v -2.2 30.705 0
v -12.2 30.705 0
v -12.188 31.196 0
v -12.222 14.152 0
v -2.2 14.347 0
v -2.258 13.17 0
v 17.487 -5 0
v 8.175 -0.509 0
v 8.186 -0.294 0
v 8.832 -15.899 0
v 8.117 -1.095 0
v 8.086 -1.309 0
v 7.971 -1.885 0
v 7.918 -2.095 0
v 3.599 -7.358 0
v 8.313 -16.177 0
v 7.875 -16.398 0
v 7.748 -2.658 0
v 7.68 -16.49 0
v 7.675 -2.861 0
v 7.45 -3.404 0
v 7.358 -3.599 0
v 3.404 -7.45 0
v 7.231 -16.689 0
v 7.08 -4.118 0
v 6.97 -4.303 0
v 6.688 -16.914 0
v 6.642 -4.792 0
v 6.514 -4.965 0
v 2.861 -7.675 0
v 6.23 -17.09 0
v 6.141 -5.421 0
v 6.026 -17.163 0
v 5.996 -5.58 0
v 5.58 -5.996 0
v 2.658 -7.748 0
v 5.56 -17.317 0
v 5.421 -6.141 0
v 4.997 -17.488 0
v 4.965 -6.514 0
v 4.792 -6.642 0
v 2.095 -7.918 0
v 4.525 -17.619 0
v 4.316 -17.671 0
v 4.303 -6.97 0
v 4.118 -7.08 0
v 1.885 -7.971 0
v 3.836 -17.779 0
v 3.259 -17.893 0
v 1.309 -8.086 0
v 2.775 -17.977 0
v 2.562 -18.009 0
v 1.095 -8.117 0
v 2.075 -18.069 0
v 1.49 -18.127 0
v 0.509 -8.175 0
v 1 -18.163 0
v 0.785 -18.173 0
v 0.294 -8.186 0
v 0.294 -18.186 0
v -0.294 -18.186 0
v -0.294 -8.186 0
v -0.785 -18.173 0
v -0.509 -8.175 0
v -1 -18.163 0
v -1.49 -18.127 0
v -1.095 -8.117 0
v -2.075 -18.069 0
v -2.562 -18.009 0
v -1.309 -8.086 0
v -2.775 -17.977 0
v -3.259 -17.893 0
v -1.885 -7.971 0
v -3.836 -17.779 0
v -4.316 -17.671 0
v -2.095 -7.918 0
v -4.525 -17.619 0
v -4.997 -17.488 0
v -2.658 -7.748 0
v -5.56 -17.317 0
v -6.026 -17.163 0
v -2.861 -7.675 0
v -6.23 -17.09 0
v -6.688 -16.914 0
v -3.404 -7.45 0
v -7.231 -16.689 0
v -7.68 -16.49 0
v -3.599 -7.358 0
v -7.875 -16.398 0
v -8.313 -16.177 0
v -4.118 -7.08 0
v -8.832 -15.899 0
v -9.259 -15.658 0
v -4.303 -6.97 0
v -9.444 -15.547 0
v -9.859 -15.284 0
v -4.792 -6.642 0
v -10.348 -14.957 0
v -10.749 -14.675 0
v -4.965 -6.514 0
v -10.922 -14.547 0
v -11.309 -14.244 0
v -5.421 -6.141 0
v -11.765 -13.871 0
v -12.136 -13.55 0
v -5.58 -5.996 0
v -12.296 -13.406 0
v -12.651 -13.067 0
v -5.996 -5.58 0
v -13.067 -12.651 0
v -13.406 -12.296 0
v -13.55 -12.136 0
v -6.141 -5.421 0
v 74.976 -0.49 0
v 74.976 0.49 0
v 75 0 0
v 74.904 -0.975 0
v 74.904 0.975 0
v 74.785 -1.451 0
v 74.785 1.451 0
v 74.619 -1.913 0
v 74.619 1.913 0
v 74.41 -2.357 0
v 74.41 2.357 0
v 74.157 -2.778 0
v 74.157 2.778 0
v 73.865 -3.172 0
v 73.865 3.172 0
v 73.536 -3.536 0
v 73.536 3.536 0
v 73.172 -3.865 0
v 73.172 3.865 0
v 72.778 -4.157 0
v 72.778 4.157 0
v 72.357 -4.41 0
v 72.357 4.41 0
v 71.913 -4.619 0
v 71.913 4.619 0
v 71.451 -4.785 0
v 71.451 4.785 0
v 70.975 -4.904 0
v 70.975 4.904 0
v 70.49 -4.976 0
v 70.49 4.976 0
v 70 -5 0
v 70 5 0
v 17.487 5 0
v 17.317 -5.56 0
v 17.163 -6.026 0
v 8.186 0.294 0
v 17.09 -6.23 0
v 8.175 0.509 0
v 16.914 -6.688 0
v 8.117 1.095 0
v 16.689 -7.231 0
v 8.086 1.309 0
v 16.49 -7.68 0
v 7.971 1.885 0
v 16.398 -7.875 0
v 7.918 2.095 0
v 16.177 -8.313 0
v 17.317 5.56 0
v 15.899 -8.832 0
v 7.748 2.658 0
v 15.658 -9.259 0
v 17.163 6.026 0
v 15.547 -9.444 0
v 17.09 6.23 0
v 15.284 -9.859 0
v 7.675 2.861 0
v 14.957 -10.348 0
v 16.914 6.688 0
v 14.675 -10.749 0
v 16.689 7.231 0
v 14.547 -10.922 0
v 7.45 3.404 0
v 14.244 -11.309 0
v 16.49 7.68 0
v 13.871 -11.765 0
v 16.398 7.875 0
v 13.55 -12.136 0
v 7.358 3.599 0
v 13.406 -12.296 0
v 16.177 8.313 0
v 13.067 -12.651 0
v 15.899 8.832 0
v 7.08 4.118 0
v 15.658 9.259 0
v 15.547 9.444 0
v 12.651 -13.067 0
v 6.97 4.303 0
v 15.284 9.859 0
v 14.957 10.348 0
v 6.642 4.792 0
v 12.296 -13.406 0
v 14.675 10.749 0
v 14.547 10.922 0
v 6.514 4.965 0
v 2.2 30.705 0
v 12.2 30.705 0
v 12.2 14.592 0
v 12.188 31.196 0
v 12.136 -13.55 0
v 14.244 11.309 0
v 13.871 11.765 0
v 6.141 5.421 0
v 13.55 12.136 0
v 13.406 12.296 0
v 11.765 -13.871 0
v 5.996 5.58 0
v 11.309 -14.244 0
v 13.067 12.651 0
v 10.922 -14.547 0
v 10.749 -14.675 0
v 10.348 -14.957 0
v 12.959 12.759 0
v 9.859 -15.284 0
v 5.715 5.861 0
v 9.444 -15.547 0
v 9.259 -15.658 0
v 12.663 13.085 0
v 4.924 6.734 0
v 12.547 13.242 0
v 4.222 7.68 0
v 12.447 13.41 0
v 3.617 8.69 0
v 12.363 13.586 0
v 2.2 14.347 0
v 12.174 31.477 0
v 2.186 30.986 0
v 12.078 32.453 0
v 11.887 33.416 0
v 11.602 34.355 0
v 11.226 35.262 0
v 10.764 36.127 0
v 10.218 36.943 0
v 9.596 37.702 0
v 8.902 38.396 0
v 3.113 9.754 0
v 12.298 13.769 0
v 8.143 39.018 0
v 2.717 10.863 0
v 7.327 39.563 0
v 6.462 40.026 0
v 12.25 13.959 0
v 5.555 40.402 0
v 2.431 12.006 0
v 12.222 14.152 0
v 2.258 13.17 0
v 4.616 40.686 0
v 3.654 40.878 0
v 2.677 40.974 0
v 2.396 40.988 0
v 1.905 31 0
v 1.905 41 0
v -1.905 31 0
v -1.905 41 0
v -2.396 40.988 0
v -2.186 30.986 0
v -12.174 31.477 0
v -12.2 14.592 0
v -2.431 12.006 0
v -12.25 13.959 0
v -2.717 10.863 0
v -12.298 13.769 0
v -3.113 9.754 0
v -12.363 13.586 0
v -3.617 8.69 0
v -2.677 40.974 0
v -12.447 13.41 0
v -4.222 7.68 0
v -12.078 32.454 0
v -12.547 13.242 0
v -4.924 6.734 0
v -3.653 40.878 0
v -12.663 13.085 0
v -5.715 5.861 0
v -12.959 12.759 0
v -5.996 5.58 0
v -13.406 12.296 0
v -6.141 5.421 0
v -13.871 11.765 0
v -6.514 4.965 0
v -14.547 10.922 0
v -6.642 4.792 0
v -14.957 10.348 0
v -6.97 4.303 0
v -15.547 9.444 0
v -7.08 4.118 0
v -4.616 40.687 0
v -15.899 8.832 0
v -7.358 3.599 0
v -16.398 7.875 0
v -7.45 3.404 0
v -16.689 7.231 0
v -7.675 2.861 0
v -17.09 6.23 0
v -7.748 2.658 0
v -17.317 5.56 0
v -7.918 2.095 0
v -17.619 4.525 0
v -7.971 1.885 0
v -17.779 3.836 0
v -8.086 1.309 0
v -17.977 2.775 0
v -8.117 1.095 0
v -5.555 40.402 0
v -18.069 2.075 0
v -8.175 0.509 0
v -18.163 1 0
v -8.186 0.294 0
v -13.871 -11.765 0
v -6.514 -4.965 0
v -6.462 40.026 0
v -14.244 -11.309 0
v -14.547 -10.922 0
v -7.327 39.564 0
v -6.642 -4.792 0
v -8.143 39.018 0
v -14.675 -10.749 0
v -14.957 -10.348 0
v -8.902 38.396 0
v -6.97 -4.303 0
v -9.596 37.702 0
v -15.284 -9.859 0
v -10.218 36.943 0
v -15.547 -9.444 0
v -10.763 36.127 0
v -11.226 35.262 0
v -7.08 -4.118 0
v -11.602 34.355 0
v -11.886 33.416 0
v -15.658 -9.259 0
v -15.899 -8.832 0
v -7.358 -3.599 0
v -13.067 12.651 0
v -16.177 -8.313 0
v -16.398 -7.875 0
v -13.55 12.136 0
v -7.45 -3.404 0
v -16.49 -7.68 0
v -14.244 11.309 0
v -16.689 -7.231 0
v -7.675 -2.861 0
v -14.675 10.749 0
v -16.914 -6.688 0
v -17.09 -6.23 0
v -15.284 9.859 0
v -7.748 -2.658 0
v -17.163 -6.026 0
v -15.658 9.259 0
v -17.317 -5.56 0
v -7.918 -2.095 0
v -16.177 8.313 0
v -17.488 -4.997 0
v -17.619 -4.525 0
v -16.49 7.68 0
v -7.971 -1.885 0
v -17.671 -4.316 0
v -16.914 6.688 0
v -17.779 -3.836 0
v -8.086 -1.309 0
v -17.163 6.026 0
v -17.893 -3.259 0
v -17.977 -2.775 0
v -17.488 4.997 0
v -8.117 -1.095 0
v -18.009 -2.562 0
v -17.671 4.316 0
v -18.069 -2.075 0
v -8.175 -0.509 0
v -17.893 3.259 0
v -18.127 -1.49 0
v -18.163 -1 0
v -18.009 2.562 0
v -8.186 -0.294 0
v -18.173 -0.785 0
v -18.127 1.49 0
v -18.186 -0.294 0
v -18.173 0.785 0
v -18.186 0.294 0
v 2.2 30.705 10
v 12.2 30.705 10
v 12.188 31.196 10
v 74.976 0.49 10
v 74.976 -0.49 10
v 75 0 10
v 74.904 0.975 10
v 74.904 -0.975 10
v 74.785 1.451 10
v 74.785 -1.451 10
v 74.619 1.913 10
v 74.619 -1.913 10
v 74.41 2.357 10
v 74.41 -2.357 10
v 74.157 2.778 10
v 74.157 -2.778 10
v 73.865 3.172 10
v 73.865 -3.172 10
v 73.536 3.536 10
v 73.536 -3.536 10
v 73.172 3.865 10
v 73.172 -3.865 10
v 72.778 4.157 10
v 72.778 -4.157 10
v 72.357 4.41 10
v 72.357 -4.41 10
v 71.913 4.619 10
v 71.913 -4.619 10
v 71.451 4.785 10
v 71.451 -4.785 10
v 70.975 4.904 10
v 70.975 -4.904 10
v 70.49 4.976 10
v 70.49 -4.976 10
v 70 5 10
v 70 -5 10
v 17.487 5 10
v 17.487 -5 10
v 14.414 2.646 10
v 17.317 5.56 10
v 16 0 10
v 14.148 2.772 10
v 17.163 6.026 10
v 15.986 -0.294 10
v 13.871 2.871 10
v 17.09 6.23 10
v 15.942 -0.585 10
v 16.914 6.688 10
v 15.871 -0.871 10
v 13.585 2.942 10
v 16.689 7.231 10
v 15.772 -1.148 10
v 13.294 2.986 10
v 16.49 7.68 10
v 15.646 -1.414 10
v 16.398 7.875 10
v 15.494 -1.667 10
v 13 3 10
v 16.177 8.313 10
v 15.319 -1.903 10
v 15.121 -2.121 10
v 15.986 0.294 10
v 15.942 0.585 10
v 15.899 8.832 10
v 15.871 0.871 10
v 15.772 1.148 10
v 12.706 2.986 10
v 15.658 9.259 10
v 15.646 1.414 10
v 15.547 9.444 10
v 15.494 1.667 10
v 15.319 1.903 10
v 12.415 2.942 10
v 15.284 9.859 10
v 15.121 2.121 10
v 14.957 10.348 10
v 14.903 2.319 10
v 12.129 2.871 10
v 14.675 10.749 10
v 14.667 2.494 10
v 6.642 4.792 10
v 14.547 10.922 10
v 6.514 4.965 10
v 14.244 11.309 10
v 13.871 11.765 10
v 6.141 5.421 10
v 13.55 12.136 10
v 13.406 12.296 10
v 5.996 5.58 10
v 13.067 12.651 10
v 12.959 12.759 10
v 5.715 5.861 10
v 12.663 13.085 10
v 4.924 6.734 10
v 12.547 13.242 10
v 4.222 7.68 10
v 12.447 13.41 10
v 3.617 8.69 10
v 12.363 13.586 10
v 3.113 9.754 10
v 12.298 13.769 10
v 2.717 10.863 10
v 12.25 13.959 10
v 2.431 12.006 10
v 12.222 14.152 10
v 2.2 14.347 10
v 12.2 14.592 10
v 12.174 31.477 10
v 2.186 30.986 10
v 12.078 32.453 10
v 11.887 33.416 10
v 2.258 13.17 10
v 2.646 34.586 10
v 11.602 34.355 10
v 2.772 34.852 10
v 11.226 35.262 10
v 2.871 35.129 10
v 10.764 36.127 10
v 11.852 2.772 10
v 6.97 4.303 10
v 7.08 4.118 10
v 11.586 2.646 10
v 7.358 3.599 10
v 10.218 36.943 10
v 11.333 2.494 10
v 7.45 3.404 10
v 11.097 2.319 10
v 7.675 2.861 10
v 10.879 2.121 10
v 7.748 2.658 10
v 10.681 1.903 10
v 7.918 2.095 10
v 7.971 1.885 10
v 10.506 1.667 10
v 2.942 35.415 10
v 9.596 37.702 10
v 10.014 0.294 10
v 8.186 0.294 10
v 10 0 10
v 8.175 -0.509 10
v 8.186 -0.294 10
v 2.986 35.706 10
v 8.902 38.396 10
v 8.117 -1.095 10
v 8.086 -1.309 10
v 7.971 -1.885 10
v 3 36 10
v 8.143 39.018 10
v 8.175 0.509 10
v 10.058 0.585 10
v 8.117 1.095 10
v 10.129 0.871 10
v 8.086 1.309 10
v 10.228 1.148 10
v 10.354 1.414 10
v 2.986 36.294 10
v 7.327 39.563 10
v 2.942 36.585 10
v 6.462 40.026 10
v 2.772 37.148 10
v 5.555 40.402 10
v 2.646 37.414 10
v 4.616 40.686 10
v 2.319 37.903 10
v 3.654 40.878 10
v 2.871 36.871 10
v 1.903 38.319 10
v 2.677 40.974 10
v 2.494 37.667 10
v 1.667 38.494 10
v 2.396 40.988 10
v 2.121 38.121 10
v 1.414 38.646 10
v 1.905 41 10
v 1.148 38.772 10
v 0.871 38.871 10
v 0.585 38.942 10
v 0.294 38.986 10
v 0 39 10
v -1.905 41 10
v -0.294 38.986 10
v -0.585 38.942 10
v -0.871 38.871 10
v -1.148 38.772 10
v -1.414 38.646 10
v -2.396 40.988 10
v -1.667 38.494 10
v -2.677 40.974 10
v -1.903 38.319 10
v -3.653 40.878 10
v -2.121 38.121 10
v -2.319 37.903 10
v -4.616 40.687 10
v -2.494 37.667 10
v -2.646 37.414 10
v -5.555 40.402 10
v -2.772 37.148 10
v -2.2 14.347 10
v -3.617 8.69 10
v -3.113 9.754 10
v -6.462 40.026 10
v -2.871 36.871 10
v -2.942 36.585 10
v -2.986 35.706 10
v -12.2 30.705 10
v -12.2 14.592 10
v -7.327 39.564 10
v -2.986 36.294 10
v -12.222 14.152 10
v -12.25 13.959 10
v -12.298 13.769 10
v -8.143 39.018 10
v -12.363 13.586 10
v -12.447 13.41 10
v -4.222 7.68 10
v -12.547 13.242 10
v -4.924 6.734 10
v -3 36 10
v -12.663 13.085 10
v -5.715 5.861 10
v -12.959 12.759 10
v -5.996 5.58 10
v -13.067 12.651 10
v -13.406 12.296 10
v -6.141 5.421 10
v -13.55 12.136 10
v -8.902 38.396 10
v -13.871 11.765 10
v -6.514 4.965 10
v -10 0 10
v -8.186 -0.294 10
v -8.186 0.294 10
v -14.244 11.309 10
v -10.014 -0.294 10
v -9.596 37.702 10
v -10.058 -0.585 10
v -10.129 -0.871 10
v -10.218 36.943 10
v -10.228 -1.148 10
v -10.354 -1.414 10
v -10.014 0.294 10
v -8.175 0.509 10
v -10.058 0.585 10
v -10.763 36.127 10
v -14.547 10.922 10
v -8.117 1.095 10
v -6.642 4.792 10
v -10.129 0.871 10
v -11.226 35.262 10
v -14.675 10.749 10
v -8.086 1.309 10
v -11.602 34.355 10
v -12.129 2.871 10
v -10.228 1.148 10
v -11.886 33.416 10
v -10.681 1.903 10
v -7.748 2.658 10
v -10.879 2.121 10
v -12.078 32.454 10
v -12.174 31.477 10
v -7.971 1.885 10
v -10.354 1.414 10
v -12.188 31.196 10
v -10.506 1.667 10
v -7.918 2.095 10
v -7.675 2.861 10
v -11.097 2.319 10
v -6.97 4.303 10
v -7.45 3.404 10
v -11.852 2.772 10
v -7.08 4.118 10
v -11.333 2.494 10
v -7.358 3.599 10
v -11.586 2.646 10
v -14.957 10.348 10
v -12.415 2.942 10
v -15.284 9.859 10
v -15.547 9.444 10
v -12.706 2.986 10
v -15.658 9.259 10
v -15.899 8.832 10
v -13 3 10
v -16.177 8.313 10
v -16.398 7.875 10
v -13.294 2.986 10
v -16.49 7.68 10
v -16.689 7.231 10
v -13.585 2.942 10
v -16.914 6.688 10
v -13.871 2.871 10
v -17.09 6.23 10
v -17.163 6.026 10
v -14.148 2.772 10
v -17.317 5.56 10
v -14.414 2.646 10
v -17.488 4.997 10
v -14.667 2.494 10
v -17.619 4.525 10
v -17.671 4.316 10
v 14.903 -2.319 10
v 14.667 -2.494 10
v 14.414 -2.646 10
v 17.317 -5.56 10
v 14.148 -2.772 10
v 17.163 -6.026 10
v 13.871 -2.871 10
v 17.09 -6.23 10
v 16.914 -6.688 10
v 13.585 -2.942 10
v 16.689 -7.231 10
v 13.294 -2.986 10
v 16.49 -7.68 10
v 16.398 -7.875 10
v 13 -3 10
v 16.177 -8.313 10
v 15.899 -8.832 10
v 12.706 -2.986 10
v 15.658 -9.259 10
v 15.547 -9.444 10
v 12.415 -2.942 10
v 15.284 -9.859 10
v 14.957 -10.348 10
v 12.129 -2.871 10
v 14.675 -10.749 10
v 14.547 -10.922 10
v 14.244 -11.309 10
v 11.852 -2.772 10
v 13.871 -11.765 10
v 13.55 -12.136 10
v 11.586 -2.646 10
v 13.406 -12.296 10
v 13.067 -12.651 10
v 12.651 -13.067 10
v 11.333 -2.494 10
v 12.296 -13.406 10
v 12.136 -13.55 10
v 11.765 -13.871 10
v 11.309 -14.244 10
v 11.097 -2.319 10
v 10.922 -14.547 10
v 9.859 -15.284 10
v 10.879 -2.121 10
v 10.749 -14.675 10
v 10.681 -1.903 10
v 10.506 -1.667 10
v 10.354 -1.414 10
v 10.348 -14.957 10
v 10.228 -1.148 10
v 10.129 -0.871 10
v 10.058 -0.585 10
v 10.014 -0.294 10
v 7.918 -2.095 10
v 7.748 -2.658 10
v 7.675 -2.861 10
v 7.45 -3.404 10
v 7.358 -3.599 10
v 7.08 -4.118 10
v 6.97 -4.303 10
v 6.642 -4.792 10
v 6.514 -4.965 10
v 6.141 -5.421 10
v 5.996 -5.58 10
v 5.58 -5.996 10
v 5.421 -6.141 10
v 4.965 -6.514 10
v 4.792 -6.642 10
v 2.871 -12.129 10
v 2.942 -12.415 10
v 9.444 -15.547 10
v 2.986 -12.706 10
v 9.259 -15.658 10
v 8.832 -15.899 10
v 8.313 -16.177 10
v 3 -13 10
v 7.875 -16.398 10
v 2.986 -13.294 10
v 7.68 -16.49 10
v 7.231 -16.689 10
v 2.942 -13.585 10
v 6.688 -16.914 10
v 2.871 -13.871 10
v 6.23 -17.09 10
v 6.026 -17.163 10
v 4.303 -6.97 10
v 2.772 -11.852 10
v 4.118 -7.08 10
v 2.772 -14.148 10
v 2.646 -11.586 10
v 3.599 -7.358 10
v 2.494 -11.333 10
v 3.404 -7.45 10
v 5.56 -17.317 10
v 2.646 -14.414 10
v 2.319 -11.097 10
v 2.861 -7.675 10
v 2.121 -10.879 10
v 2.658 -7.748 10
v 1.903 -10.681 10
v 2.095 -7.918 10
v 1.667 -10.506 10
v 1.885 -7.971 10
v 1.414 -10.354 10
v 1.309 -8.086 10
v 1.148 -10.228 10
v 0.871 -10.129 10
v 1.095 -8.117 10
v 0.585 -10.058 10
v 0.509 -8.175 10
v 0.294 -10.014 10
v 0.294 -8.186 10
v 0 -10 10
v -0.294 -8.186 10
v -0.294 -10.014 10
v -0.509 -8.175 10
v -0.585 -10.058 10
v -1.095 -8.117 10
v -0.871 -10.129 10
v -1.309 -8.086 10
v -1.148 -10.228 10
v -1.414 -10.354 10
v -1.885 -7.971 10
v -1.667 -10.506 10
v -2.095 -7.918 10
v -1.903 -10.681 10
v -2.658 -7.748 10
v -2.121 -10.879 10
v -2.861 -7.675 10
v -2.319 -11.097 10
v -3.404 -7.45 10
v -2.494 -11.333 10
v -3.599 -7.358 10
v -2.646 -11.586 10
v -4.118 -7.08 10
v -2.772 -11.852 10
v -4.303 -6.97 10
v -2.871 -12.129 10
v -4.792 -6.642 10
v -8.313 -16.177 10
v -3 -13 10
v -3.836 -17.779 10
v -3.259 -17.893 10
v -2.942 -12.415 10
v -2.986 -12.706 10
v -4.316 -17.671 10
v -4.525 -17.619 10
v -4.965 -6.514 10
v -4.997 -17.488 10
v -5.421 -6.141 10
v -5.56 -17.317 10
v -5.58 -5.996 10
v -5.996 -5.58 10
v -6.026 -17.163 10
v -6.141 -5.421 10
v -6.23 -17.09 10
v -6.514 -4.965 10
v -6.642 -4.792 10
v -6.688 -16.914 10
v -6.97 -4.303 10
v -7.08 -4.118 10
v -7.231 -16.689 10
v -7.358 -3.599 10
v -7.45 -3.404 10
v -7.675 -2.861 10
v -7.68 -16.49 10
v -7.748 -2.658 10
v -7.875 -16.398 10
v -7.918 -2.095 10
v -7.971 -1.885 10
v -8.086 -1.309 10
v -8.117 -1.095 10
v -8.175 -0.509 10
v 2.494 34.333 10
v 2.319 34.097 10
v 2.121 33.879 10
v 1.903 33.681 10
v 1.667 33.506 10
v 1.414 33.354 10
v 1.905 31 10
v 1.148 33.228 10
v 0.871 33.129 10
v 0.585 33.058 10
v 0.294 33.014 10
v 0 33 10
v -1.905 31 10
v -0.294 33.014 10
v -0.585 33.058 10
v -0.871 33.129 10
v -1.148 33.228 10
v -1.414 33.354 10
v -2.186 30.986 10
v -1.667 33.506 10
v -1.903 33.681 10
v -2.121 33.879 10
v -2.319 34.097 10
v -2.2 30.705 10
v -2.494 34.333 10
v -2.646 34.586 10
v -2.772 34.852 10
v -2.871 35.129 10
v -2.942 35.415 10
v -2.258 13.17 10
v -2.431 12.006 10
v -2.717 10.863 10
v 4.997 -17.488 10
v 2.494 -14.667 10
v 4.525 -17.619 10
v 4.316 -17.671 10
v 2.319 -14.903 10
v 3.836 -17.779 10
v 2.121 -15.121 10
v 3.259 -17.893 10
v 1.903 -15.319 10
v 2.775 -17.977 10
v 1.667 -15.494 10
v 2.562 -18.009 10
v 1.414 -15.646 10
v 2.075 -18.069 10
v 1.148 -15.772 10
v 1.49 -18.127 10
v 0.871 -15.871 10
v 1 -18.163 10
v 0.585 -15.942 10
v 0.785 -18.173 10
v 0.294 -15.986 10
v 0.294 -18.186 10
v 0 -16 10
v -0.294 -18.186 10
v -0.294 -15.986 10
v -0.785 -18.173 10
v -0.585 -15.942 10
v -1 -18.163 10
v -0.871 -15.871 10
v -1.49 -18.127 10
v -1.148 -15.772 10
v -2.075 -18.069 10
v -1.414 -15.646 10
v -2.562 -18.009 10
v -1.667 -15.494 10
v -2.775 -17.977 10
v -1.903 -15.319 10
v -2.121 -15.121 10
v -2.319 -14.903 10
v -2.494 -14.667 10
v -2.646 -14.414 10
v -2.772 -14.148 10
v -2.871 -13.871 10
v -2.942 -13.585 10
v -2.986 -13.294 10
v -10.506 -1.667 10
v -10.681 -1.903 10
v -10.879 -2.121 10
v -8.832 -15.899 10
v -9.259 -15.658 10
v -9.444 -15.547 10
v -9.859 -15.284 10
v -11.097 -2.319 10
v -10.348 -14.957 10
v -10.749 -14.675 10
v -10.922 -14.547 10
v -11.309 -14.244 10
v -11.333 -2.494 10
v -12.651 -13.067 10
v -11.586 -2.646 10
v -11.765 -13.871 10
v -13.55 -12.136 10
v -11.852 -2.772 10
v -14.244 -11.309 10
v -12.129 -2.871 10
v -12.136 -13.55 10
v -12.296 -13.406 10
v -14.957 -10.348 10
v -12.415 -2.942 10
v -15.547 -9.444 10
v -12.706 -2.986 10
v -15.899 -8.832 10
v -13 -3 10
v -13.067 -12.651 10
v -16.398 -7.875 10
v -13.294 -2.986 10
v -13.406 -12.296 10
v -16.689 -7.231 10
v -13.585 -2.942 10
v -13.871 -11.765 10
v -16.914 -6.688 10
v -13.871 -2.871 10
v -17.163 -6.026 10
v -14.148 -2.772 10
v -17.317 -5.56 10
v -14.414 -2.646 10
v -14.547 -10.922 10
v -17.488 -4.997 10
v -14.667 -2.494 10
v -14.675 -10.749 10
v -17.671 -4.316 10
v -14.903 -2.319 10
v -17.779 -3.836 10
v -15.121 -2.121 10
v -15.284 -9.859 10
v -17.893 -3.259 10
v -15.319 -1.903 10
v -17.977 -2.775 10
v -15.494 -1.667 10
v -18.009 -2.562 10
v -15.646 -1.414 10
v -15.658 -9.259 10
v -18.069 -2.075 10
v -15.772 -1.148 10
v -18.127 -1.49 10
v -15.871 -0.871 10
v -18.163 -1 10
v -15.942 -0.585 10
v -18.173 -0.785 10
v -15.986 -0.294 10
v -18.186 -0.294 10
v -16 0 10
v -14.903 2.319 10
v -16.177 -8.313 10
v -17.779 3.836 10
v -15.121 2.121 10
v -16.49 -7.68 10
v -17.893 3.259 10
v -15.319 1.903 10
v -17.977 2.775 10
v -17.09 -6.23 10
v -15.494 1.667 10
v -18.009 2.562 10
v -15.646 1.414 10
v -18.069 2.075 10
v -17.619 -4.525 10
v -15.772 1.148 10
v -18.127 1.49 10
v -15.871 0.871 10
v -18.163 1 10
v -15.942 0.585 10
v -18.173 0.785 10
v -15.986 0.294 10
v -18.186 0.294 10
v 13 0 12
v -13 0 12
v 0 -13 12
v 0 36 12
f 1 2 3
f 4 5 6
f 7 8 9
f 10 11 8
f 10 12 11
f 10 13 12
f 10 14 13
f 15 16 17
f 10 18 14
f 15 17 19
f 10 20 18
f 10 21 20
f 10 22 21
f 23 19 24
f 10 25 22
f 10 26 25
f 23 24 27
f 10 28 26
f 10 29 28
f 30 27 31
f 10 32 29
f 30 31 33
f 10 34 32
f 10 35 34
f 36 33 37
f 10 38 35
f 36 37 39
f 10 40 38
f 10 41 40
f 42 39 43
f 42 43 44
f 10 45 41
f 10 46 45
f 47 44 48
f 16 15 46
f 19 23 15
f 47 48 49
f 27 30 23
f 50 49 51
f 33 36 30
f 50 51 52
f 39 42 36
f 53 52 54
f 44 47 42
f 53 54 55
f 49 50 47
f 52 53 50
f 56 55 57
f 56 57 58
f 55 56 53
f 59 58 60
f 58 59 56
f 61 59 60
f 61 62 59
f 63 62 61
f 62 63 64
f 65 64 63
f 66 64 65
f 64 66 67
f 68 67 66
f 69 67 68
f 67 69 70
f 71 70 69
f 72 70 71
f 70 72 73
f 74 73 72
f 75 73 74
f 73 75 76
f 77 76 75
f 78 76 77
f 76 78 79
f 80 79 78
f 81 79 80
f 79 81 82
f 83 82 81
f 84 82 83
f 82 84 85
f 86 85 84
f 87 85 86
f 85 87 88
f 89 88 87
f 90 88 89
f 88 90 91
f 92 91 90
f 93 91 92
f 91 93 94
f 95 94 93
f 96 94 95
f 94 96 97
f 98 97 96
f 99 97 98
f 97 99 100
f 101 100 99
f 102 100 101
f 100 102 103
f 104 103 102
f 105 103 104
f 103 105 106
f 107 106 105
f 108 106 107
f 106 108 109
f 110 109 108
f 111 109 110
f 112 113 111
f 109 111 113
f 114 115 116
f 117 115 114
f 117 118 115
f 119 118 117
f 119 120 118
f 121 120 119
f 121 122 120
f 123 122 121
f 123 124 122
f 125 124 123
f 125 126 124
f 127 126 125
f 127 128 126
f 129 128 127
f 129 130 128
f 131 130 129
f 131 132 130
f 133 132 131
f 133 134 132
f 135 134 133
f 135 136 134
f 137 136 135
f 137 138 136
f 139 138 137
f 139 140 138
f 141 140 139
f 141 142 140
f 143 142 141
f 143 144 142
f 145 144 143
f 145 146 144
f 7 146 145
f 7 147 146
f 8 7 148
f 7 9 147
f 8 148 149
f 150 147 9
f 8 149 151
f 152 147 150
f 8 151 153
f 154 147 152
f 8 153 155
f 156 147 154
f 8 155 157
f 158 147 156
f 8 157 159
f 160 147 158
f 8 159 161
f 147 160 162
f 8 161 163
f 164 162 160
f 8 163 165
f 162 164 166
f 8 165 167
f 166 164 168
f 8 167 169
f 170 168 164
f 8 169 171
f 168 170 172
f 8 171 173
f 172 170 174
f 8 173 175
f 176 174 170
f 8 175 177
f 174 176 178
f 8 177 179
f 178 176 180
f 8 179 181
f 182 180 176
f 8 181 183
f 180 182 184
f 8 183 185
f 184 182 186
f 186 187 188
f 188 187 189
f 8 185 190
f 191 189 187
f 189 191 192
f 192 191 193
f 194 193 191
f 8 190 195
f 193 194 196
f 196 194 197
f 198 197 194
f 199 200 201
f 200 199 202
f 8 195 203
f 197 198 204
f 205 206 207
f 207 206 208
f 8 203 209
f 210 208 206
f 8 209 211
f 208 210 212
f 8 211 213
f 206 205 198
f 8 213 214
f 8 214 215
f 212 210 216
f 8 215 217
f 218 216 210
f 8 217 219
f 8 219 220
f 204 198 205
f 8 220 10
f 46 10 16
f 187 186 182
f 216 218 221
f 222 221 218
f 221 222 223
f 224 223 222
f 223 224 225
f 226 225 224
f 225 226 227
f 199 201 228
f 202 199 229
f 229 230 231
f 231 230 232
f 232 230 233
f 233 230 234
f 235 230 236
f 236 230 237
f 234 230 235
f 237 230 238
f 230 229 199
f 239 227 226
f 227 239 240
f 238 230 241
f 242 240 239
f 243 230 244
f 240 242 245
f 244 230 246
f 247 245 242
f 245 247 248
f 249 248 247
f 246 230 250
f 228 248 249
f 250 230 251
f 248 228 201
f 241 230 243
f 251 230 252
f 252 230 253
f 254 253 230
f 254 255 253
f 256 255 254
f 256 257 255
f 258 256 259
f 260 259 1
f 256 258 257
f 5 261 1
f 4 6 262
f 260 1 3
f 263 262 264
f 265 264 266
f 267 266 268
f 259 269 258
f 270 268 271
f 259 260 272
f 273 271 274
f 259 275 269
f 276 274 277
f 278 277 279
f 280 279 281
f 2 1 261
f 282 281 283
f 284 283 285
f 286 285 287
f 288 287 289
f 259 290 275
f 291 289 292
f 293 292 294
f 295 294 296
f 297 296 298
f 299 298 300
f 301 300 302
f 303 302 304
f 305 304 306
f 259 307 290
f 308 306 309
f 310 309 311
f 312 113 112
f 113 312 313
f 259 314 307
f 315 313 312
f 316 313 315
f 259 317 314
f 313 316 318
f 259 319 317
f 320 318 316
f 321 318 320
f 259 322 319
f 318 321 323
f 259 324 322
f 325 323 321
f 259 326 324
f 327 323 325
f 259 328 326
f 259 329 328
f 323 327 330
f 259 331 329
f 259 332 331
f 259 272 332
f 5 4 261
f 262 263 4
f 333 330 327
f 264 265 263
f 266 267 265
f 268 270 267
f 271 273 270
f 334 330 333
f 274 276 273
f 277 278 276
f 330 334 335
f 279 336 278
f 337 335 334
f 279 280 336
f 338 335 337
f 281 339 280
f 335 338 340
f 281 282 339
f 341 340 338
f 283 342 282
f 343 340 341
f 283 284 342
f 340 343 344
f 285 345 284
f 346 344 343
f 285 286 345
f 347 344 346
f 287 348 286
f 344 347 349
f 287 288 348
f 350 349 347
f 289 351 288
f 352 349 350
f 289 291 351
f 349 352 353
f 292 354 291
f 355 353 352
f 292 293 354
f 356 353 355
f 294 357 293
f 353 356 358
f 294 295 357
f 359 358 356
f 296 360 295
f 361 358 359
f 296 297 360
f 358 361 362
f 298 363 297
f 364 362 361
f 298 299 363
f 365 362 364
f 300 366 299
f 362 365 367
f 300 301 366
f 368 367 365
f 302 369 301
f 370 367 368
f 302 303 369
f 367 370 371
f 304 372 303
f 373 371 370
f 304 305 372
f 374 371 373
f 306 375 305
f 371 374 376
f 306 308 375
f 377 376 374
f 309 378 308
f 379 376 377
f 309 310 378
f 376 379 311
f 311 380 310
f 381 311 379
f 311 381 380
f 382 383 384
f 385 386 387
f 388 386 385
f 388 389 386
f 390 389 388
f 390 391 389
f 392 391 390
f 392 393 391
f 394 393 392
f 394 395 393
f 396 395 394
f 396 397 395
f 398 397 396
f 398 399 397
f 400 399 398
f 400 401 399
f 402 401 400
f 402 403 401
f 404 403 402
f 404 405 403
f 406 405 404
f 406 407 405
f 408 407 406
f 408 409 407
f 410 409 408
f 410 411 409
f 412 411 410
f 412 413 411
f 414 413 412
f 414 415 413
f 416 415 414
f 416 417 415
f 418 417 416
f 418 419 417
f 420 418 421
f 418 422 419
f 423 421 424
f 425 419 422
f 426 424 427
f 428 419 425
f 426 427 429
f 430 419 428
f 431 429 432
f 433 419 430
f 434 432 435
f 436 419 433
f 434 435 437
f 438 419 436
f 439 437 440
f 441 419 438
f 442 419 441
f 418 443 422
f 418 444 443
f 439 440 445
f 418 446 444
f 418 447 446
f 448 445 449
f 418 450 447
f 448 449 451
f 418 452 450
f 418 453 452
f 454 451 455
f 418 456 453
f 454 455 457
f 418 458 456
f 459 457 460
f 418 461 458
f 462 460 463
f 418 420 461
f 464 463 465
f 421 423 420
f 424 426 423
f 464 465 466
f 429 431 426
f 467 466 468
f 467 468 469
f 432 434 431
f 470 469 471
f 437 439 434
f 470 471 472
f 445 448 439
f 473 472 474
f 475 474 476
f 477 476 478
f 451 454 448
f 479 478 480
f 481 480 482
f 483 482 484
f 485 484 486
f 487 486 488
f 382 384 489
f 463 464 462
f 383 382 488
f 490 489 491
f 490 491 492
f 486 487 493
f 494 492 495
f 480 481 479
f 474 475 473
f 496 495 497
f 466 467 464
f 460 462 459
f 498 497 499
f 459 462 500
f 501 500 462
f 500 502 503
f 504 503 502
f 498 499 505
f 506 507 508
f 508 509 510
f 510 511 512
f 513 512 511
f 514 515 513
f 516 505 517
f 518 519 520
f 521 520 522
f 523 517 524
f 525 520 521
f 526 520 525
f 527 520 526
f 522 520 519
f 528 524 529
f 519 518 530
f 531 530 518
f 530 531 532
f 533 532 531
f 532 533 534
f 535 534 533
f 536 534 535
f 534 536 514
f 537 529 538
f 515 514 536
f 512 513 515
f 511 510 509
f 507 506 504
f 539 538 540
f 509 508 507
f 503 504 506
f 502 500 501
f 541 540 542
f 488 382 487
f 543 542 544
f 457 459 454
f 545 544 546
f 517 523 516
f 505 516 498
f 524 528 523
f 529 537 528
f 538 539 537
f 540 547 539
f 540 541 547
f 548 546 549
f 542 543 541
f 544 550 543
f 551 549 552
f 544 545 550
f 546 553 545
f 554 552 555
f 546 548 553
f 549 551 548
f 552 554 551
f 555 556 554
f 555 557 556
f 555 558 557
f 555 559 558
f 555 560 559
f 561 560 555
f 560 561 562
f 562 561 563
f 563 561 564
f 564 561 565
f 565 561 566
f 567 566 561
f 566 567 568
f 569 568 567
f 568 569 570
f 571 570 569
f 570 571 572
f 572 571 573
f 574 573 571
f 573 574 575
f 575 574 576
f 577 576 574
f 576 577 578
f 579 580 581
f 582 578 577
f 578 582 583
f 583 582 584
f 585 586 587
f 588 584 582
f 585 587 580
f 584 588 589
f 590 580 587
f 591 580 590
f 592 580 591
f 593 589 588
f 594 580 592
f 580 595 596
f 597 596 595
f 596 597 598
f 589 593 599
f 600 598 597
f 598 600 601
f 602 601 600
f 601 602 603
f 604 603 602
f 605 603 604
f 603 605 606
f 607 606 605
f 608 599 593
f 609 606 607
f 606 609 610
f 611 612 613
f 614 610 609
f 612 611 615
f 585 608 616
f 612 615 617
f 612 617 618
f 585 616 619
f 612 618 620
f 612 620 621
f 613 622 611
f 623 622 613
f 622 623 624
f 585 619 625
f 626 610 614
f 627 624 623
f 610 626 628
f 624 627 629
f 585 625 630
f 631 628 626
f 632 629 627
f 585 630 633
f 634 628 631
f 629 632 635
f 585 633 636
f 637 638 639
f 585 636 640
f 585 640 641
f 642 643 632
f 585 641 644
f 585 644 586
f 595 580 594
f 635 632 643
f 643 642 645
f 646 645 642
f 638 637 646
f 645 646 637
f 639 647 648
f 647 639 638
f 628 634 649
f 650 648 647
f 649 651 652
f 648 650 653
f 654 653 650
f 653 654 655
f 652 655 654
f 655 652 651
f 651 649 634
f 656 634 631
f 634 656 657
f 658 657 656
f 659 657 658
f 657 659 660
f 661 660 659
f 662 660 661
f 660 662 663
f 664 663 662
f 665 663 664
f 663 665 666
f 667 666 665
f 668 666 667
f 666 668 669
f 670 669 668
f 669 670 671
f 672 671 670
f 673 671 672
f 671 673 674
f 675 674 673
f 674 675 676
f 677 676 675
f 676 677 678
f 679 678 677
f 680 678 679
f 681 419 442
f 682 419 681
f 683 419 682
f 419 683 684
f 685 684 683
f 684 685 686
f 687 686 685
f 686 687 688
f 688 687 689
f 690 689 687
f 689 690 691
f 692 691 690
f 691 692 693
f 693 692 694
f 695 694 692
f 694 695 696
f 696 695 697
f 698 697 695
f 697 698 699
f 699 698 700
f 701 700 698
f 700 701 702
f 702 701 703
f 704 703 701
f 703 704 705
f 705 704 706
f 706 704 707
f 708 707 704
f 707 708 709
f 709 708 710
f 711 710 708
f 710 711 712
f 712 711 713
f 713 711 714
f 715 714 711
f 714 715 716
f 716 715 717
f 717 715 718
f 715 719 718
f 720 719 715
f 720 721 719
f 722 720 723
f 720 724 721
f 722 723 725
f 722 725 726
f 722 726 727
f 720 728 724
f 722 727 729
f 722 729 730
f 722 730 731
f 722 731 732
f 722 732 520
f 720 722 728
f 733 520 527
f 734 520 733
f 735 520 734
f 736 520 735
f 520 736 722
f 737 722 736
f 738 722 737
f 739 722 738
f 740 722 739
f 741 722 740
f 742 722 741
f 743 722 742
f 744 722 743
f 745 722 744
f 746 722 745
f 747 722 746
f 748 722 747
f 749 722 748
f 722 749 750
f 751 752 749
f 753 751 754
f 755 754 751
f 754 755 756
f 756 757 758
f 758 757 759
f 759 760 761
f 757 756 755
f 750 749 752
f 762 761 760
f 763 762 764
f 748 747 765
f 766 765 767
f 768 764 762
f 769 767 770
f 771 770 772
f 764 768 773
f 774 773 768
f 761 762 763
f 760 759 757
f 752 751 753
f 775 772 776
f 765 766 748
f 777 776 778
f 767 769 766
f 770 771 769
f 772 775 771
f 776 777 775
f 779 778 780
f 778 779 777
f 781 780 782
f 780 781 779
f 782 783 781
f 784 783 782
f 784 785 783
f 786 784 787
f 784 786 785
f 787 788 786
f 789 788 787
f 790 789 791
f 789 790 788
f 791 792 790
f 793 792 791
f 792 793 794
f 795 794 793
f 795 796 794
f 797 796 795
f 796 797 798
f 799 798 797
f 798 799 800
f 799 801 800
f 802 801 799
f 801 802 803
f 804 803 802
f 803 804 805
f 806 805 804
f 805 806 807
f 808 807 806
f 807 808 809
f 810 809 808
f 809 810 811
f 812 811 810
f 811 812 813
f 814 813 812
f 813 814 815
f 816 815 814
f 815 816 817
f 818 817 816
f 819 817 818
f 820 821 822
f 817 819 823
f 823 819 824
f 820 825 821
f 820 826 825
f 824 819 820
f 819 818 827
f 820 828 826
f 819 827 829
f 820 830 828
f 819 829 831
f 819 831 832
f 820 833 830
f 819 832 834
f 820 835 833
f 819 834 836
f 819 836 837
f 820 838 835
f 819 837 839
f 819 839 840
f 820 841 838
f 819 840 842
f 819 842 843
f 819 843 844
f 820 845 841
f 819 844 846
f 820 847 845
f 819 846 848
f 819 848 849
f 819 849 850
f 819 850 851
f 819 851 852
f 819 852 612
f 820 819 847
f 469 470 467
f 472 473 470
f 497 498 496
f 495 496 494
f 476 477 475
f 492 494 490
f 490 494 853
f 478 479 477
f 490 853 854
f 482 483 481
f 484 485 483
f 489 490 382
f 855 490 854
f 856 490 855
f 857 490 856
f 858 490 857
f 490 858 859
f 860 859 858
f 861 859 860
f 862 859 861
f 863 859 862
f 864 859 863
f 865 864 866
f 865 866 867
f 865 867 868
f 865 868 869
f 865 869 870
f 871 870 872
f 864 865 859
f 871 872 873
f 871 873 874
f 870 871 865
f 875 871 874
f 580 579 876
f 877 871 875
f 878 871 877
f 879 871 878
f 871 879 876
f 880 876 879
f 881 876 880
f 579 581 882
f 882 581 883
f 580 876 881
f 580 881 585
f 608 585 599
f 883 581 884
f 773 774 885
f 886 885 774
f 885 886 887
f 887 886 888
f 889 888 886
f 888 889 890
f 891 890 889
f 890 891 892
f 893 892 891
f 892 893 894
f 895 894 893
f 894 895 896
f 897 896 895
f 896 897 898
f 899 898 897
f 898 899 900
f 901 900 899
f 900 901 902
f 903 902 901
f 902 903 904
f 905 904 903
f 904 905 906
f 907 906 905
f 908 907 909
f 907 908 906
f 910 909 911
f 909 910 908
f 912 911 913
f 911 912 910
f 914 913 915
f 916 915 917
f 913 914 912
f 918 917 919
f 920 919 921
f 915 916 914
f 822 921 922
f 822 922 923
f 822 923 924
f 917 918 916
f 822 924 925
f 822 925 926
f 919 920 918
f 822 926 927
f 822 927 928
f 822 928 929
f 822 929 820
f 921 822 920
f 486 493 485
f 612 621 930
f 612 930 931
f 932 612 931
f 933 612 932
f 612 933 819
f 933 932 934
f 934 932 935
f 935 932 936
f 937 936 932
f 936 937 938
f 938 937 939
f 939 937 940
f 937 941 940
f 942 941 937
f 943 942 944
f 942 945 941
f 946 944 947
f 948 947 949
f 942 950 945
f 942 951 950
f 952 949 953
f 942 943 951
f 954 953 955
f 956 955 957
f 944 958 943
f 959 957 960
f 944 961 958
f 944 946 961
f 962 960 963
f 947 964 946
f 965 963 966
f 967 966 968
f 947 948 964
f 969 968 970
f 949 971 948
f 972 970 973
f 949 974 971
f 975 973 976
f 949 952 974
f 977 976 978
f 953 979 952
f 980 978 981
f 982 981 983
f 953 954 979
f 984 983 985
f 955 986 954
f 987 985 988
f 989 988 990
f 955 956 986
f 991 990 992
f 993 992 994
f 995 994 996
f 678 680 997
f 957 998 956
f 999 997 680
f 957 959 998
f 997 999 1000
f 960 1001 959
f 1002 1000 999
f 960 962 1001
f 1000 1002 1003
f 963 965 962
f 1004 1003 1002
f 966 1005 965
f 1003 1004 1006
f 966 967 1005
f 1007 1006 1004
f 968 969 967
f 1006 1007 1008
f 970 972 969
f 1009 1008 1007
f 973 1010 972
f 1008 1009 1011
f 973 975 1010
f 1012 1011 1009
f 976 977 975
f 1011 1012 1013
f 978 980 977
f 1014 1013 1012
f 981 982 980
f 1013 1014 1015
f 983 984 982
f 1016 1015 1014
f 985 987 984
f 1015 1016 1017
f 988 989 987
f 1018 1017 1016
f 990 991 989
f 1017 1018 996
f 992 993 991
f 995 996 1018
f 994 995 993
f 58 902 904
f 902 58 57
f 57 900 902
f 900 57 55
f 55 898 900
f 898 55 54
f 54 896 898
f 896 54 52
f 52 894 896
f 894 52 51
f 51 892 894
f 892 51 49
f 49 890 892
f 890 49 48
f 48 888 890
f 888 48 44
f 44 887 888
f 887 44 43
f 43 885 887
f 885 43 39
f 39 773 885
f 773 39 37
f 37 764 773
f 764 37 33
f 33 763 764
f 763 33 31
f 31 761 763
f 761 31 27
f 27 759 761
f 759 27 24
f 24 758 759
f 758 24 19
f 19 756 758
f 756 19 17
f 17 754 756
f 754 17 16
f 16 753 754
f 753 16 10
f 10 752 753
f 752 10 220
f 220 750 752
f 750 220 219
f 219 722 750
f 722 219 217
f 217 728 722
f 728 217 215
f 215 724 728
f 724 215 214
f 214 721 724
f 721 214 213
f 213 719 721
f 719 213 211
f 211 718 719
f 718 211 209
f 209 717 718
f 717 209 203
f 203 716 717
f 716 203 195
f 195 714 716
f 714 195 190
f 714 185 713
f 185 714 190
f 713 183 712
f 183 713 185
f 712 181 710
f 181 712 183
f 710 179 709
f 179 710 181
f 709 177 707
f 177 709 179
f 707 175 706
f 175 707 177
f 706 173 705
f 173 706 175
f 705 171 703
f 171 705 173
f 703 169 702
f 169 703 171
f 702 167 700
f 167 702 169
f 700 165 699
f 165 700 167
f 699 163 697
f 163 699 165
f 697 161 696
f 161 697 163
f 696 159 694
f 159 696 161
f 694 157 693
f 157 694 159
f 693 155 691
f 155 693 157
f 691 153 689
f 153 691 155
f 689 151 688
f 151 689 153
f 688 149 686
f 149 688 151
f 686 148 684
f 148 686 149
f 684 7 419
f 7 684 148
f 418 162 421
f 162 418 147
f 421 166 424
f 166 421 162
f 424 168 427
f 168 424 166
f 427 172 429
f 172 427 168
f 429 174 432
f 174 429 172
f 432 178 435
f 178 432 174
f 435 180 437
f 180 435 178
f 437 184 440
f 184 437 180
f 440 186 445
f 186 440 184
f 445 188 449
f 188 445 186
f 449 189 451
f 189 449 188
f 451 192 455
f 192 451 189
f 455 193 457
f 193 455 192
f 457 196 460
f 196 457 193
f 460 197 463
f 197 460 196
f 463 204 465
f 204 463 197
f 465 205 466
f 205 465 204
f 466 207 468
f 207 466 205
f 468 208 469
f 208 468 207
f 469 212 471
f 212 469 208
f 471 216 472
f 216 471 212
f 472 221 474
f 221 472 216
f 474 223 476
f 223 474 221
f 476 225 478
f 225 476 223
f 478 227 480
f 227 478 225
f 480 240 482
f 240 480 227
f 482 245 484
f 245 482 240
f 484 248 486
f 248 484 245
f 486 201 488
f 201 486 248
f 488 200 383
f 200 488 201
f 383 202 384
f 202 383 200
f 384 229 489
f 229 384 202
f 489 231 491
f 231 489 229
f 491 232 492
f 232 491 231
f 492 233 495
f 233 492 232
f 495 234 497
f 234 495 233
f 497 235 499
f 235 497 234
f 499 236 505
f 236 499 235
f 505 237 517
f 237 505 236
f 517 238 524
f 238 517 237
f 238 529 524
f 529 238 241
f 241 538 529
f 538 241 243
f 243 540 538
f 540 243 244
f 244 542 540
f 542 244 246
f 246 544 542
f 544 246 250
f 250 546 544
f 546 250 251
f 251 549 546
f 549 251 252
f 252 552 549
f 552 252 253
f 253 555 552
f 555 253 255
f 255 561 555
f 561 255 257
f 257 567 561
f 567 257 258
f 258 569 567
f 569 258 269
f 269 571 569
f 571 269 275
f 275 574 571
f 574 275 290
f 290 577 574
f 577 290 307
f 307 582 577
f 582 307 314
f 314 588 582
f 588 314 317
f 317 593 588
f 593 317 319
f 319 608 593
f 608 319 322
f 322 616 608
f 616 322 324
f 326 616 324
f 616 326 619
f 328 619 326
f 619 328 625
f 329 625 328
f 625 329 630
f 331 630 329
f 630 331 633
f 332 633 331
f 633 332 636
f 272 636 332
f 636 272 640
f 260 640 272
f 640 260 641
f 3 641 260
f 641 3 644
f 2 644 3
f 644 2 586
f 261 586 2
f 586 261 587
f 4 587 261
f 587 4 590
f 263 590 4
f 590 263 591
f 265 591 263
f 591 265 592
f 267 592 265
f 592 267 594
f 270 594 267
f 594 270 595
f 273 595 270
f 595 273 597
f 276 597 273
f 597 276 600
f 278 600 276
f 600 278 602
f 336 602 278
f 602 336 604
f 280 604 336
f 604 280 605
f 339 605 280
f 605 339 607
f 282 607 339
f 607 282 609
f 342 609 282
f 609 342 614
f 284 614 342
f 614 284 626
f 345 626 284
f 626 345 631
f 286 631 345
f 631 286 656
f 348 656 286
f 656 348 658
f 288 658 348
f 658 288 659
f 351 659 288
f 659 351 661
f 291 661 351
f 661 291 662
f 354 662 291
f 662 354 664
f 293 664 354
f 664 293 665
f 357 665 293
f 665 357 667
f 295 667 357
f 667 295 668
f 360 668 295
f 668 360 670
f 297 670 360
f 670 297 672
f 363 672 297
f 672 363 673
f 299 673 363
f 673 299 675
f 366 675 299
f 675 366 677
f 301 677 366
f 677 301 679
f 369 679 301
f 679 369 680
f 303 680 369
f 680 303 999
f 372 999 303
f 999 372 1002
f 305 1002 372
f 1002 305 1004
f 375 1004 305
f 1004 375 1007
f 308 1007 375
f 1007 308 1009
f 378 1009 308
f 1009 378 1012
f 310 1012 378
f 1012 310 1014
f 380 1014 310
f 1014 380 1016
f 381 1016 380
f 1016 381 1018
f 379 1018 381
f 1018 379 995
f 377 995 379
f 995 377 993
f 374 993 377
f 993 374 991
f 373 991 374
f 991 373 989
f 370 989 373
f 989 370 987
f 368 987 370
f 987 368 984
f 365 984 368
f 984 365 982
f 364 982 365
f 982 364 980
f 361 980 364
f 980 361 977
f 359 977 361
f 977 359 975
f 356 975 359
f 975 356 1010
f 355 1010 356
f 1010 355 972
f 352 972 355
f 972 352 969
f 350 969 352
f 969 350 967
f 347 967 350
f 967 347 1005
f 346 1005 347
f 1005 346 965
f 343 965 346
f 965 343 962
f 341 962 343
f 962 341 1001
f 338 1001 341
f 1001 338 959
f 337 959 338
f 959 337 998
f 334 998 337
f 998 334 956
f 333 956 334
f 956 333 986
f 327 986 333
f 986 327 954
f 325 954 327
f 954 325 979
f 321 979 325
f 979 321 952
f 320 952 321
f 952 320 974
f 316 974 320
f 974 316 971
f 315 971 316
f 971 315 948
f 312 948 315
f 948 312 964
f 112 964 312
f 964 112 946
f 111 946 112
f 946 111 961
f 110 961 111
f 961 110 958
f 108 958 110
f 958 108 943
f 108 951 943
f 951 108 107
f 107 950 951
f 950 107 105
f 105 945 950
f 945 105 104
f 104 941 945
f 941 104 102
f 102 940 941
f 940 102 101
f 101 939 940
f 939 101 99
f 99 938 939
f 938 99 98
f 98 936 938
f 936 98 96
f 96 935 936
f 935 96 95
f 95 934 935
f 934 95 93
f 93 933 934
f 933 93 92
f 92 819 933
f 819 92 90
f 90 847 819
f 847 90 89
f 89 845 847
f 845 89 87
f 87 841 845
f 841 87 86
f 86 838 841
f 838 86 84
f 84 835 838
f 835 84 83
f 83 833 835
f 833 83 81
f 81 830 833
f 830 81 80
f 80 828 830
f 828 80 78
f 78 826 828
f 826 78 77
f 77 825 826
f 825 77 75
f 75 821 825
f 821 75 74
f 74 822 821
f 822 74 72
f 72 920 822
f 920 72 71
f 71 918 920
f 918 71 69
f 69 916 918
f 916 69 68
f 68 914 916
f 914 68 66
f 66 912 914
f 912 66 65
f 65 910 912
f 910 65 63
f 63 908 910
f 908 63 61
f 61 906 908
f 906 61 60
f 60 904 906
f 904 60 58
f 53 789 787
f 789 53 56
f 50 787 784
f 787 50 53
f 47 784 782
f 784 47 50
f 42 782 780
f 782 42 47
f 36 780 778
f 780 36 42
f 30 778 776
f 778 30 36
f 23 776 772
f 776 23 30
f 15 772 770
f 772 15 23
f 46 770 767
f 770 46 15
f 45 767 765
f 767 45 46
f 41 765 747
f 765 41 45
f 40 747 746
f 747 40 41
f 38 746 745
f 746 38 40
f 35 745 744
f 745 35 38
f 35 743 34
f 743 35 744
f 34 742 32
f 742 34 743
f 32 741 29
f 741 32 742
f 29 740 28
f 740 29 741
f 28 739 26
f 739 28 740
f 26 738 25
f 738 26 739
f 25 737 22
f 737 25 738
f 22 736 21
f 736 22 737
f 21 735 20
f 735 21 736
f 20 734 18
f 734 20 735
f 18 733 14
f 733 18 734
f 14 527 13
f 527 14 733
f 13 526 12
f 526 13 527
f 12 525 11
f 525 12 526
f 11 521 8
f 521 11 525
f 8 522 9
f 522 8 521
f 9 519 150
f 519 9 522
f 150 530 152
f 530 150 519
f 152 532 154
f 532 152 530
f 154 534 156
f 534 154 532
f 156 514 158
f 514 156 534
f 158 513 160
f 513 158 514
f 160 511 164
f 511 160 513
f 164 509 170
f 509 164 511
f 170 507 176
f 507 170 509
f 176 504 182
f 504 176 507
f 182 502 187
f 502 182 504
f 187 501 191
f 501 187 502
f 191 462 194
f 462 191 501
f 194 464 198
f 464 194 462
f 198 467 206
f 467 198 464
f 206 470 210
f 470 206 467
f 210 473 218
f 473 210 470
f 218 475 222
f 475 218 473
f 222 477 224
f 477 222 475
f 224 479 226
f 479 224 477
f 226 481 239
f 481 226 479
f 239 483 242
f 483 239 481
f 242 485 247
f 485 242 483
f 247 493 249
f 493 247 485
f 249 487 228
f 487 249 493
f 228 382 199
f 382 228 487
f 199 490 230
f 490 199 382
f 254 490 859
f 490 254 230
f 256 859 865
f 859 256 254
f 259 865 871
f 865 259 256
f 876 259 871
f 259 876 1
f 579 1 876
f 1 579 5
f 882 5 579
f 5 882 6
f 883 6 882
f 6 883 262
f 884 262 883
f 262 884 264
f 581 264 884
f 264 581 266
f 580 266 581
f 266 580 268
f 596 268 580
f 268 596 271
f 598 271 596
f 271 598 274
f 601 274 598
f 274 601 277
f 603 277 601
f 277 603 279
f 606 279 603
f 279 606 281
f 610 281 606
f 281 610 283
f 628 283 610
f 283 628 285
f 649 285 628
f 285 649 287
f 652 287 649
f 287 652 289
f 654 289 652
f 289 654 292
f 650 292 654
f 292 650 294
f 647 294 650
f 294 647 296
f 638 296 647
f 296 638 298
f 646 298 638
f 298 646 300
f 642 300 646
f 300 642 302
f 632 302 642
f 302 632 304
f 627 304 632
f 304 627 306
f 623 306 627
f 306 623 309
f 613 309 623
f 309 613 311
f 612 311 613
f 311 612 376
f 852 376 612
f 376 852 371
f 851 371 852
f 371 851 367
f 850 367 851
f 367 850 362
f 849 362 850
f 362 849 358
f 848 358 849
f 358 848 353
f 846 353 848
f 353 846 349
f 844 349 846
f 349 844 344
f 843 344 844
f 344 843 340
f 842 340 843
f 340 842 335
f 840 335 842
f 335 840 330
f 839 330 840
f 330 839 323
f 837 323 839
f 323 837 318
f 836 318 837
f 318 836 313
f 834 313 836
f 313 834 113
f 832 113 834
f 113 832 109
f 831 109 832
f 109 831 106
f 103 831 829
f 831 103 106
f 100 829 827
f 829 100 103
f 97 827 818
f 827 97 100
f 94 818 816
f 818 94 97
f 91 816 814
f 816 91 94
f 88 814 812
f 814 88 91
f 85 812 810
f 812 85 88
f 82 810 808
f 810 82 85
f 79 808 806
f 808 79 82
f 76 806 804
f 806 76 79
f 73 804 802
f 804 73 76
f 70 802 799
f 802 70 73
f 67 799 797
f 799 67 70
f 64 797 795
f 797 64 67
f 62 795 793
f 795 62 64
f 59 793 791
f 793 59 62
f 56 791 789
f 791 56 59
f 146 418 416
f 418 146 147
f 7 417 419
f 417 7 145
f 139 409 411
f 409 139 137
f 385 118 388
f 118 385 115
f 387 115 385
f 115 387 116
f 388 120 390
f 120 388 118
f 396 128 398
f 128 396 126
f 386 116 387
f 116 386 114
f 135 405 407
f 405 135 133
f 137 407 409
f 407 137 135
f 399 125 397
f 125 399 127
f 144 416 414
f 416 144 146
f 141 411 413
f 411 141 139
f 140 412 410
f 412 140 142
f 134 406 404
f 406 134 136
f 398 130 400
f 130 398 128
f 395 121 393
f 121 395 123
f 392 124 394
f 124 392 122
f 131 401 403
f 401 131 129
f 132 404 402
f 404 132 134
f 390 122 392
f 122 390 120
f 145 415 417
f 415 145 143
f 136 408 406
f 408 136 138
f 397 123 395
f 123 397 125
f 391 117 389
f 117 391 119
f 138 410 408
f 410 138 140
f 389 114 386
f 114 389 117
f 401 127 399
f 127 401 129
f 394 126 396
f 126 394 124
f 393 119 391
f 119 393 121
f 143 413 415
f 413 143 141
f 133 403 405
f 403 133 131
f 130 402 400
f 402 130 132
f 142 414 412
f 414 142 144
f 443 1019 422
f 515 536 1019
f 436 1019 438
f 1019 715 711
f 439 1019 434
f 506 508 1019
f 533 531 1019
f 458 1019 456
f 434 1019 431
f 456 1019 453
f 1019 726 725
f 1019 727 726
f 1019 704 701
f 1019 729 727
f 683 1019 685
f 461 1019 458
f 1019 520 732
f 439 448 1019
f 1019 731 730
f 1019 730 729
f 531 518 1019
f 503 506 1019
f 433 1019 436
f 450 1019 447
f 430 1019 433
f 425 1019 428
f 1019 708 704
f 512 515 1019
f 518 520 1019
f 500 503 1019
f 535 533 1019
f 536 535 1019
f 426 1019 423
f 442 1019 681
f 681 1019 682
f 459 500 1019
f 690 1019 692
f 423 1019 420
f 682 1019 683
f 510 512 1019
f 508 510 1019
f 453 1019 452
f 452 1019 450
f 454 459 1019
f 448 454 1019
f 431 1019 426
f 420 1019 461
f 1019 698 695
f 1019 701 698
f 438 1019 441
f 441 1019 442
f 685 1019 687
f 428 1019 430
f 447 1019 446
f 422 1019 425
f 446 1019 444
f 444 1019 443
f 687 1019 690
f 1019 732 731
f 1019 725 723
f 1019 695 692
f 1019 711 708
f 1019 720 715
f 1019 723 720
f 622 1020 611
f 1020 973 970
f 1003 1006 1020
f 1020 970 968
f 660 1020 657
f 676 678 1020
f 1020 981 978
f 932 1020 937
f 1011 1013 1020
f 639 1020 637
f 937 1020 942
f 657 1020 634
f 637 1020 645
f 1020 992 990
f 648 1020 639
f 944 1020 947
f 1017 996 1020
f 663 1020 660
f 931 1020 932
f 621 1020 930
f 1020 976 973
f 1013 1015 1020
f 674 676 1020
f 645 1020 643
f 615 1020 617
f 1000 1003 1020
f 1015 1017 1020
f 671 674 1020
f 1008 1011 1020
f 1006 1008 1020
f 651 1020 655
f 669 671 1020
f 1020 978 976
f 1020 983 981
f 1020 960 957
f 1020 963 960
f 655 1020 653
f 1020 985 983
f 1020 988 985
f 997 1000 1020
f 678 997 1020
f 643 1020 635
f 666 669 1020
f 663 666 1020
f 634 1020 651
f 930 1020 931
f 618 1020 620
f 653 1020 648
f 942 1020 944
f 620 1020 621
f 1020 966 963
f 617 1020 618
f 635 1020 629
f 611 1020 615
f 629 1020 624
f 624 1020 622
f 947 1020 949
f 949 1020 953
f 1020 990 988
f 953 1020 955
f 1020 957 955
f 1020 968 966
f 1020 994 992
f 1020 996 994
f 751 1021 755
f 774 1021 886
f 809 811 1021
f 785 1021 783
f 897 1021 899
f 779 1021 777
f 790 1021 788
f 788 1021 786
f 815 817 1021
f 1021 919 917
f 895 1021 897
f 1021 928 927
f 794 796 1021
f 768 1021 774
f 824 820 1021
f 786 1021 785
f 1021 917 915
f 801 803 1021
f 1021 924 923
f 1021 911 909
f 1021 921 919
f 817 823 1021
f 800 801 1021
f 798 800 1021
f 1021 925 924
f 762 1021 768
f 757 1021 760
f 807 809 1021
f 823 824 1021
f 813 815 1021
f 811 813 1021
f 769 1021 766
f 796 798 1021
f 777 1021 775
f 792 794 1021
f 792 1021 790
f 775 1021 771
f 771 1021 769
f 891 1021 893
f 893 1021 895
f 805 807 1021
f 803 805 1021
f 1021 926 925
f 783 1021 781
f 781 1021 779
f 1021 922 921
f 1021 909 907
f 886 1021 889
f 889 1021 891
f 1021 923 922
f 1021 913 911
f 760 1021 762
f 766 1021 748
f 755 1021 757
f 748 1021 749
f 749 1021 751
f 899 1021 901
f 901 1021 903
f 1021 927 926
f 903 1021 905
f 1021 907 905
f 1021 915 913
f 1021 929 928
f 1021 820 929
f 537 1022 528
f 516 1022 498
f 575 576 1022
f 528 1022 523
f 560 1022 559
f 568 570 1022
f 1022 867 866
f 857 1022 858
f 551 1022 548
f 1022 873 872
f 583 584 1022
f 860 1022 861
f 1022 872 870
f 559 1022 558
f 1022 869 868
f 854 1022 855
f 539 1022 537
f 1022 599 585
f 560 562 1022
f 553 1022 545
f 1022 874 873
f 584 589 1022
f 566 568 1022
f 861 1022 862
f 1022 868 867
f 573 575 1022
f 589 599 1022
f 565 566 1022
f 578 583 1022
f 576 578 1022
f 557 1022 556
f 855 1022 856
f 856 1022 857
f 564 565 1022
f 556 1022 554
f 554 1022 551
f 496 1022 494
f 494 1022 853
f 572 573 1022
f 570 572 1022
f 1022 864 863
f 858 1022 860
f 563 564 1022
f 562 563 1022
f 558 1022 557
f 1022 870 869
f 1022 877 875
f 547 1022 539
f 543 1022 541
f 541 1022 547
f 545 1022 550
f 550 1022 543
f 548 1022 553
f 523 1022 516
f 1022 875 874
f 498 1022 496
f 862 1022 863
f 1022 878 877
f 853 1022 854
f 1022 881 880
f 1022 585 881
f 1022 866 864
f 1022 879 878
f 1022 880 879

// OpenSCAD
// Parametric Keyhole Switch Surround / Clip for Lenco GL75 (Filleted)
$fn = 64;

// --- KEYHOLE DIMENSIONS (mm) ---
hole_radius    = 8.0;   // Radius of the main circular opening
slot_width     = 4.0;   // Width of the straight slot portion
slot_length    = 31.0;  // Length of the slot extending from circle center
fillet_radius  = 12;    // Curve radius where circle meets slot
outer_margin   = 10.0;  // Border thickness surrounding the keyhole
plate_height   = 10.0;  // Total height/thickness of the clip, minus the cones
tolerance      = 0.2;   // Print clearance adjustment

//
// Turntable Switch Guard
//
// Copyright © 2026 Simon Hickinbotham
//
// Licensed under the CERN Open Hardware Licence
// Version 2 - Permissive (CERN-OHL-P-2.0).
//
// The complete licence is available in the repository's LICENSE file.
//


// --- CALCULATED VALUES ---
r_inner = hole_radius + tolerance;
w_inner = slot_width + (tolerance * 2);

// 2D Keyhole Profile with Internal Fillets
module keyhole_2d(r, w, len, f) {
    offset(r = -f)
        offset(r = f)
            union() {
                circle(r = r);
                translate([0, len / 2, 0])
                    square([w, len], center = true);
            }
}

// 3D Keyhole Clip Body
module keyhole_clip() {
    difference() {
        // Outer body (expands the filleted keyhole outline smoothly)
        linear_extrude(height = plate_height)
            offset(r = outer_margin)
                keyhole_2d(r_inner, w_inner, slot_length, fillet_radius);
        
        // Inner keyhole cutout with filleted junctions
        translate([0, 0, -1])
            linear_extrude(height = plate_height + 2)
                keyhole_2d(r_inner, w_inner, slot_length, fillet_radius);
    }
}

module mycone(tx,ty,tz){
   
    translate([tx,ty,tz])
    cylinder(h=2,r1=3,r2=0); 
}

//The switch surround
keyhole_clip();

//The lever
translate([10,-outer_margin/2,0])
cube([60, outer_margin, plate_height]);
//optional rounded end

translate([70,0,0])
cylinder(h=plate_height,r1=outer_margin/2,r2=outer_margin/2);

//Add cones underneath to limit friction
mycone(hole_radius+outer_margin/2,0,10);
mycone(-(hole_radius+outer_margin/2),0,10);
mycone(0,-(hole_radius+outer_margin/2),10);
mycone(0,(slot_length+outer_margin/2),10);
